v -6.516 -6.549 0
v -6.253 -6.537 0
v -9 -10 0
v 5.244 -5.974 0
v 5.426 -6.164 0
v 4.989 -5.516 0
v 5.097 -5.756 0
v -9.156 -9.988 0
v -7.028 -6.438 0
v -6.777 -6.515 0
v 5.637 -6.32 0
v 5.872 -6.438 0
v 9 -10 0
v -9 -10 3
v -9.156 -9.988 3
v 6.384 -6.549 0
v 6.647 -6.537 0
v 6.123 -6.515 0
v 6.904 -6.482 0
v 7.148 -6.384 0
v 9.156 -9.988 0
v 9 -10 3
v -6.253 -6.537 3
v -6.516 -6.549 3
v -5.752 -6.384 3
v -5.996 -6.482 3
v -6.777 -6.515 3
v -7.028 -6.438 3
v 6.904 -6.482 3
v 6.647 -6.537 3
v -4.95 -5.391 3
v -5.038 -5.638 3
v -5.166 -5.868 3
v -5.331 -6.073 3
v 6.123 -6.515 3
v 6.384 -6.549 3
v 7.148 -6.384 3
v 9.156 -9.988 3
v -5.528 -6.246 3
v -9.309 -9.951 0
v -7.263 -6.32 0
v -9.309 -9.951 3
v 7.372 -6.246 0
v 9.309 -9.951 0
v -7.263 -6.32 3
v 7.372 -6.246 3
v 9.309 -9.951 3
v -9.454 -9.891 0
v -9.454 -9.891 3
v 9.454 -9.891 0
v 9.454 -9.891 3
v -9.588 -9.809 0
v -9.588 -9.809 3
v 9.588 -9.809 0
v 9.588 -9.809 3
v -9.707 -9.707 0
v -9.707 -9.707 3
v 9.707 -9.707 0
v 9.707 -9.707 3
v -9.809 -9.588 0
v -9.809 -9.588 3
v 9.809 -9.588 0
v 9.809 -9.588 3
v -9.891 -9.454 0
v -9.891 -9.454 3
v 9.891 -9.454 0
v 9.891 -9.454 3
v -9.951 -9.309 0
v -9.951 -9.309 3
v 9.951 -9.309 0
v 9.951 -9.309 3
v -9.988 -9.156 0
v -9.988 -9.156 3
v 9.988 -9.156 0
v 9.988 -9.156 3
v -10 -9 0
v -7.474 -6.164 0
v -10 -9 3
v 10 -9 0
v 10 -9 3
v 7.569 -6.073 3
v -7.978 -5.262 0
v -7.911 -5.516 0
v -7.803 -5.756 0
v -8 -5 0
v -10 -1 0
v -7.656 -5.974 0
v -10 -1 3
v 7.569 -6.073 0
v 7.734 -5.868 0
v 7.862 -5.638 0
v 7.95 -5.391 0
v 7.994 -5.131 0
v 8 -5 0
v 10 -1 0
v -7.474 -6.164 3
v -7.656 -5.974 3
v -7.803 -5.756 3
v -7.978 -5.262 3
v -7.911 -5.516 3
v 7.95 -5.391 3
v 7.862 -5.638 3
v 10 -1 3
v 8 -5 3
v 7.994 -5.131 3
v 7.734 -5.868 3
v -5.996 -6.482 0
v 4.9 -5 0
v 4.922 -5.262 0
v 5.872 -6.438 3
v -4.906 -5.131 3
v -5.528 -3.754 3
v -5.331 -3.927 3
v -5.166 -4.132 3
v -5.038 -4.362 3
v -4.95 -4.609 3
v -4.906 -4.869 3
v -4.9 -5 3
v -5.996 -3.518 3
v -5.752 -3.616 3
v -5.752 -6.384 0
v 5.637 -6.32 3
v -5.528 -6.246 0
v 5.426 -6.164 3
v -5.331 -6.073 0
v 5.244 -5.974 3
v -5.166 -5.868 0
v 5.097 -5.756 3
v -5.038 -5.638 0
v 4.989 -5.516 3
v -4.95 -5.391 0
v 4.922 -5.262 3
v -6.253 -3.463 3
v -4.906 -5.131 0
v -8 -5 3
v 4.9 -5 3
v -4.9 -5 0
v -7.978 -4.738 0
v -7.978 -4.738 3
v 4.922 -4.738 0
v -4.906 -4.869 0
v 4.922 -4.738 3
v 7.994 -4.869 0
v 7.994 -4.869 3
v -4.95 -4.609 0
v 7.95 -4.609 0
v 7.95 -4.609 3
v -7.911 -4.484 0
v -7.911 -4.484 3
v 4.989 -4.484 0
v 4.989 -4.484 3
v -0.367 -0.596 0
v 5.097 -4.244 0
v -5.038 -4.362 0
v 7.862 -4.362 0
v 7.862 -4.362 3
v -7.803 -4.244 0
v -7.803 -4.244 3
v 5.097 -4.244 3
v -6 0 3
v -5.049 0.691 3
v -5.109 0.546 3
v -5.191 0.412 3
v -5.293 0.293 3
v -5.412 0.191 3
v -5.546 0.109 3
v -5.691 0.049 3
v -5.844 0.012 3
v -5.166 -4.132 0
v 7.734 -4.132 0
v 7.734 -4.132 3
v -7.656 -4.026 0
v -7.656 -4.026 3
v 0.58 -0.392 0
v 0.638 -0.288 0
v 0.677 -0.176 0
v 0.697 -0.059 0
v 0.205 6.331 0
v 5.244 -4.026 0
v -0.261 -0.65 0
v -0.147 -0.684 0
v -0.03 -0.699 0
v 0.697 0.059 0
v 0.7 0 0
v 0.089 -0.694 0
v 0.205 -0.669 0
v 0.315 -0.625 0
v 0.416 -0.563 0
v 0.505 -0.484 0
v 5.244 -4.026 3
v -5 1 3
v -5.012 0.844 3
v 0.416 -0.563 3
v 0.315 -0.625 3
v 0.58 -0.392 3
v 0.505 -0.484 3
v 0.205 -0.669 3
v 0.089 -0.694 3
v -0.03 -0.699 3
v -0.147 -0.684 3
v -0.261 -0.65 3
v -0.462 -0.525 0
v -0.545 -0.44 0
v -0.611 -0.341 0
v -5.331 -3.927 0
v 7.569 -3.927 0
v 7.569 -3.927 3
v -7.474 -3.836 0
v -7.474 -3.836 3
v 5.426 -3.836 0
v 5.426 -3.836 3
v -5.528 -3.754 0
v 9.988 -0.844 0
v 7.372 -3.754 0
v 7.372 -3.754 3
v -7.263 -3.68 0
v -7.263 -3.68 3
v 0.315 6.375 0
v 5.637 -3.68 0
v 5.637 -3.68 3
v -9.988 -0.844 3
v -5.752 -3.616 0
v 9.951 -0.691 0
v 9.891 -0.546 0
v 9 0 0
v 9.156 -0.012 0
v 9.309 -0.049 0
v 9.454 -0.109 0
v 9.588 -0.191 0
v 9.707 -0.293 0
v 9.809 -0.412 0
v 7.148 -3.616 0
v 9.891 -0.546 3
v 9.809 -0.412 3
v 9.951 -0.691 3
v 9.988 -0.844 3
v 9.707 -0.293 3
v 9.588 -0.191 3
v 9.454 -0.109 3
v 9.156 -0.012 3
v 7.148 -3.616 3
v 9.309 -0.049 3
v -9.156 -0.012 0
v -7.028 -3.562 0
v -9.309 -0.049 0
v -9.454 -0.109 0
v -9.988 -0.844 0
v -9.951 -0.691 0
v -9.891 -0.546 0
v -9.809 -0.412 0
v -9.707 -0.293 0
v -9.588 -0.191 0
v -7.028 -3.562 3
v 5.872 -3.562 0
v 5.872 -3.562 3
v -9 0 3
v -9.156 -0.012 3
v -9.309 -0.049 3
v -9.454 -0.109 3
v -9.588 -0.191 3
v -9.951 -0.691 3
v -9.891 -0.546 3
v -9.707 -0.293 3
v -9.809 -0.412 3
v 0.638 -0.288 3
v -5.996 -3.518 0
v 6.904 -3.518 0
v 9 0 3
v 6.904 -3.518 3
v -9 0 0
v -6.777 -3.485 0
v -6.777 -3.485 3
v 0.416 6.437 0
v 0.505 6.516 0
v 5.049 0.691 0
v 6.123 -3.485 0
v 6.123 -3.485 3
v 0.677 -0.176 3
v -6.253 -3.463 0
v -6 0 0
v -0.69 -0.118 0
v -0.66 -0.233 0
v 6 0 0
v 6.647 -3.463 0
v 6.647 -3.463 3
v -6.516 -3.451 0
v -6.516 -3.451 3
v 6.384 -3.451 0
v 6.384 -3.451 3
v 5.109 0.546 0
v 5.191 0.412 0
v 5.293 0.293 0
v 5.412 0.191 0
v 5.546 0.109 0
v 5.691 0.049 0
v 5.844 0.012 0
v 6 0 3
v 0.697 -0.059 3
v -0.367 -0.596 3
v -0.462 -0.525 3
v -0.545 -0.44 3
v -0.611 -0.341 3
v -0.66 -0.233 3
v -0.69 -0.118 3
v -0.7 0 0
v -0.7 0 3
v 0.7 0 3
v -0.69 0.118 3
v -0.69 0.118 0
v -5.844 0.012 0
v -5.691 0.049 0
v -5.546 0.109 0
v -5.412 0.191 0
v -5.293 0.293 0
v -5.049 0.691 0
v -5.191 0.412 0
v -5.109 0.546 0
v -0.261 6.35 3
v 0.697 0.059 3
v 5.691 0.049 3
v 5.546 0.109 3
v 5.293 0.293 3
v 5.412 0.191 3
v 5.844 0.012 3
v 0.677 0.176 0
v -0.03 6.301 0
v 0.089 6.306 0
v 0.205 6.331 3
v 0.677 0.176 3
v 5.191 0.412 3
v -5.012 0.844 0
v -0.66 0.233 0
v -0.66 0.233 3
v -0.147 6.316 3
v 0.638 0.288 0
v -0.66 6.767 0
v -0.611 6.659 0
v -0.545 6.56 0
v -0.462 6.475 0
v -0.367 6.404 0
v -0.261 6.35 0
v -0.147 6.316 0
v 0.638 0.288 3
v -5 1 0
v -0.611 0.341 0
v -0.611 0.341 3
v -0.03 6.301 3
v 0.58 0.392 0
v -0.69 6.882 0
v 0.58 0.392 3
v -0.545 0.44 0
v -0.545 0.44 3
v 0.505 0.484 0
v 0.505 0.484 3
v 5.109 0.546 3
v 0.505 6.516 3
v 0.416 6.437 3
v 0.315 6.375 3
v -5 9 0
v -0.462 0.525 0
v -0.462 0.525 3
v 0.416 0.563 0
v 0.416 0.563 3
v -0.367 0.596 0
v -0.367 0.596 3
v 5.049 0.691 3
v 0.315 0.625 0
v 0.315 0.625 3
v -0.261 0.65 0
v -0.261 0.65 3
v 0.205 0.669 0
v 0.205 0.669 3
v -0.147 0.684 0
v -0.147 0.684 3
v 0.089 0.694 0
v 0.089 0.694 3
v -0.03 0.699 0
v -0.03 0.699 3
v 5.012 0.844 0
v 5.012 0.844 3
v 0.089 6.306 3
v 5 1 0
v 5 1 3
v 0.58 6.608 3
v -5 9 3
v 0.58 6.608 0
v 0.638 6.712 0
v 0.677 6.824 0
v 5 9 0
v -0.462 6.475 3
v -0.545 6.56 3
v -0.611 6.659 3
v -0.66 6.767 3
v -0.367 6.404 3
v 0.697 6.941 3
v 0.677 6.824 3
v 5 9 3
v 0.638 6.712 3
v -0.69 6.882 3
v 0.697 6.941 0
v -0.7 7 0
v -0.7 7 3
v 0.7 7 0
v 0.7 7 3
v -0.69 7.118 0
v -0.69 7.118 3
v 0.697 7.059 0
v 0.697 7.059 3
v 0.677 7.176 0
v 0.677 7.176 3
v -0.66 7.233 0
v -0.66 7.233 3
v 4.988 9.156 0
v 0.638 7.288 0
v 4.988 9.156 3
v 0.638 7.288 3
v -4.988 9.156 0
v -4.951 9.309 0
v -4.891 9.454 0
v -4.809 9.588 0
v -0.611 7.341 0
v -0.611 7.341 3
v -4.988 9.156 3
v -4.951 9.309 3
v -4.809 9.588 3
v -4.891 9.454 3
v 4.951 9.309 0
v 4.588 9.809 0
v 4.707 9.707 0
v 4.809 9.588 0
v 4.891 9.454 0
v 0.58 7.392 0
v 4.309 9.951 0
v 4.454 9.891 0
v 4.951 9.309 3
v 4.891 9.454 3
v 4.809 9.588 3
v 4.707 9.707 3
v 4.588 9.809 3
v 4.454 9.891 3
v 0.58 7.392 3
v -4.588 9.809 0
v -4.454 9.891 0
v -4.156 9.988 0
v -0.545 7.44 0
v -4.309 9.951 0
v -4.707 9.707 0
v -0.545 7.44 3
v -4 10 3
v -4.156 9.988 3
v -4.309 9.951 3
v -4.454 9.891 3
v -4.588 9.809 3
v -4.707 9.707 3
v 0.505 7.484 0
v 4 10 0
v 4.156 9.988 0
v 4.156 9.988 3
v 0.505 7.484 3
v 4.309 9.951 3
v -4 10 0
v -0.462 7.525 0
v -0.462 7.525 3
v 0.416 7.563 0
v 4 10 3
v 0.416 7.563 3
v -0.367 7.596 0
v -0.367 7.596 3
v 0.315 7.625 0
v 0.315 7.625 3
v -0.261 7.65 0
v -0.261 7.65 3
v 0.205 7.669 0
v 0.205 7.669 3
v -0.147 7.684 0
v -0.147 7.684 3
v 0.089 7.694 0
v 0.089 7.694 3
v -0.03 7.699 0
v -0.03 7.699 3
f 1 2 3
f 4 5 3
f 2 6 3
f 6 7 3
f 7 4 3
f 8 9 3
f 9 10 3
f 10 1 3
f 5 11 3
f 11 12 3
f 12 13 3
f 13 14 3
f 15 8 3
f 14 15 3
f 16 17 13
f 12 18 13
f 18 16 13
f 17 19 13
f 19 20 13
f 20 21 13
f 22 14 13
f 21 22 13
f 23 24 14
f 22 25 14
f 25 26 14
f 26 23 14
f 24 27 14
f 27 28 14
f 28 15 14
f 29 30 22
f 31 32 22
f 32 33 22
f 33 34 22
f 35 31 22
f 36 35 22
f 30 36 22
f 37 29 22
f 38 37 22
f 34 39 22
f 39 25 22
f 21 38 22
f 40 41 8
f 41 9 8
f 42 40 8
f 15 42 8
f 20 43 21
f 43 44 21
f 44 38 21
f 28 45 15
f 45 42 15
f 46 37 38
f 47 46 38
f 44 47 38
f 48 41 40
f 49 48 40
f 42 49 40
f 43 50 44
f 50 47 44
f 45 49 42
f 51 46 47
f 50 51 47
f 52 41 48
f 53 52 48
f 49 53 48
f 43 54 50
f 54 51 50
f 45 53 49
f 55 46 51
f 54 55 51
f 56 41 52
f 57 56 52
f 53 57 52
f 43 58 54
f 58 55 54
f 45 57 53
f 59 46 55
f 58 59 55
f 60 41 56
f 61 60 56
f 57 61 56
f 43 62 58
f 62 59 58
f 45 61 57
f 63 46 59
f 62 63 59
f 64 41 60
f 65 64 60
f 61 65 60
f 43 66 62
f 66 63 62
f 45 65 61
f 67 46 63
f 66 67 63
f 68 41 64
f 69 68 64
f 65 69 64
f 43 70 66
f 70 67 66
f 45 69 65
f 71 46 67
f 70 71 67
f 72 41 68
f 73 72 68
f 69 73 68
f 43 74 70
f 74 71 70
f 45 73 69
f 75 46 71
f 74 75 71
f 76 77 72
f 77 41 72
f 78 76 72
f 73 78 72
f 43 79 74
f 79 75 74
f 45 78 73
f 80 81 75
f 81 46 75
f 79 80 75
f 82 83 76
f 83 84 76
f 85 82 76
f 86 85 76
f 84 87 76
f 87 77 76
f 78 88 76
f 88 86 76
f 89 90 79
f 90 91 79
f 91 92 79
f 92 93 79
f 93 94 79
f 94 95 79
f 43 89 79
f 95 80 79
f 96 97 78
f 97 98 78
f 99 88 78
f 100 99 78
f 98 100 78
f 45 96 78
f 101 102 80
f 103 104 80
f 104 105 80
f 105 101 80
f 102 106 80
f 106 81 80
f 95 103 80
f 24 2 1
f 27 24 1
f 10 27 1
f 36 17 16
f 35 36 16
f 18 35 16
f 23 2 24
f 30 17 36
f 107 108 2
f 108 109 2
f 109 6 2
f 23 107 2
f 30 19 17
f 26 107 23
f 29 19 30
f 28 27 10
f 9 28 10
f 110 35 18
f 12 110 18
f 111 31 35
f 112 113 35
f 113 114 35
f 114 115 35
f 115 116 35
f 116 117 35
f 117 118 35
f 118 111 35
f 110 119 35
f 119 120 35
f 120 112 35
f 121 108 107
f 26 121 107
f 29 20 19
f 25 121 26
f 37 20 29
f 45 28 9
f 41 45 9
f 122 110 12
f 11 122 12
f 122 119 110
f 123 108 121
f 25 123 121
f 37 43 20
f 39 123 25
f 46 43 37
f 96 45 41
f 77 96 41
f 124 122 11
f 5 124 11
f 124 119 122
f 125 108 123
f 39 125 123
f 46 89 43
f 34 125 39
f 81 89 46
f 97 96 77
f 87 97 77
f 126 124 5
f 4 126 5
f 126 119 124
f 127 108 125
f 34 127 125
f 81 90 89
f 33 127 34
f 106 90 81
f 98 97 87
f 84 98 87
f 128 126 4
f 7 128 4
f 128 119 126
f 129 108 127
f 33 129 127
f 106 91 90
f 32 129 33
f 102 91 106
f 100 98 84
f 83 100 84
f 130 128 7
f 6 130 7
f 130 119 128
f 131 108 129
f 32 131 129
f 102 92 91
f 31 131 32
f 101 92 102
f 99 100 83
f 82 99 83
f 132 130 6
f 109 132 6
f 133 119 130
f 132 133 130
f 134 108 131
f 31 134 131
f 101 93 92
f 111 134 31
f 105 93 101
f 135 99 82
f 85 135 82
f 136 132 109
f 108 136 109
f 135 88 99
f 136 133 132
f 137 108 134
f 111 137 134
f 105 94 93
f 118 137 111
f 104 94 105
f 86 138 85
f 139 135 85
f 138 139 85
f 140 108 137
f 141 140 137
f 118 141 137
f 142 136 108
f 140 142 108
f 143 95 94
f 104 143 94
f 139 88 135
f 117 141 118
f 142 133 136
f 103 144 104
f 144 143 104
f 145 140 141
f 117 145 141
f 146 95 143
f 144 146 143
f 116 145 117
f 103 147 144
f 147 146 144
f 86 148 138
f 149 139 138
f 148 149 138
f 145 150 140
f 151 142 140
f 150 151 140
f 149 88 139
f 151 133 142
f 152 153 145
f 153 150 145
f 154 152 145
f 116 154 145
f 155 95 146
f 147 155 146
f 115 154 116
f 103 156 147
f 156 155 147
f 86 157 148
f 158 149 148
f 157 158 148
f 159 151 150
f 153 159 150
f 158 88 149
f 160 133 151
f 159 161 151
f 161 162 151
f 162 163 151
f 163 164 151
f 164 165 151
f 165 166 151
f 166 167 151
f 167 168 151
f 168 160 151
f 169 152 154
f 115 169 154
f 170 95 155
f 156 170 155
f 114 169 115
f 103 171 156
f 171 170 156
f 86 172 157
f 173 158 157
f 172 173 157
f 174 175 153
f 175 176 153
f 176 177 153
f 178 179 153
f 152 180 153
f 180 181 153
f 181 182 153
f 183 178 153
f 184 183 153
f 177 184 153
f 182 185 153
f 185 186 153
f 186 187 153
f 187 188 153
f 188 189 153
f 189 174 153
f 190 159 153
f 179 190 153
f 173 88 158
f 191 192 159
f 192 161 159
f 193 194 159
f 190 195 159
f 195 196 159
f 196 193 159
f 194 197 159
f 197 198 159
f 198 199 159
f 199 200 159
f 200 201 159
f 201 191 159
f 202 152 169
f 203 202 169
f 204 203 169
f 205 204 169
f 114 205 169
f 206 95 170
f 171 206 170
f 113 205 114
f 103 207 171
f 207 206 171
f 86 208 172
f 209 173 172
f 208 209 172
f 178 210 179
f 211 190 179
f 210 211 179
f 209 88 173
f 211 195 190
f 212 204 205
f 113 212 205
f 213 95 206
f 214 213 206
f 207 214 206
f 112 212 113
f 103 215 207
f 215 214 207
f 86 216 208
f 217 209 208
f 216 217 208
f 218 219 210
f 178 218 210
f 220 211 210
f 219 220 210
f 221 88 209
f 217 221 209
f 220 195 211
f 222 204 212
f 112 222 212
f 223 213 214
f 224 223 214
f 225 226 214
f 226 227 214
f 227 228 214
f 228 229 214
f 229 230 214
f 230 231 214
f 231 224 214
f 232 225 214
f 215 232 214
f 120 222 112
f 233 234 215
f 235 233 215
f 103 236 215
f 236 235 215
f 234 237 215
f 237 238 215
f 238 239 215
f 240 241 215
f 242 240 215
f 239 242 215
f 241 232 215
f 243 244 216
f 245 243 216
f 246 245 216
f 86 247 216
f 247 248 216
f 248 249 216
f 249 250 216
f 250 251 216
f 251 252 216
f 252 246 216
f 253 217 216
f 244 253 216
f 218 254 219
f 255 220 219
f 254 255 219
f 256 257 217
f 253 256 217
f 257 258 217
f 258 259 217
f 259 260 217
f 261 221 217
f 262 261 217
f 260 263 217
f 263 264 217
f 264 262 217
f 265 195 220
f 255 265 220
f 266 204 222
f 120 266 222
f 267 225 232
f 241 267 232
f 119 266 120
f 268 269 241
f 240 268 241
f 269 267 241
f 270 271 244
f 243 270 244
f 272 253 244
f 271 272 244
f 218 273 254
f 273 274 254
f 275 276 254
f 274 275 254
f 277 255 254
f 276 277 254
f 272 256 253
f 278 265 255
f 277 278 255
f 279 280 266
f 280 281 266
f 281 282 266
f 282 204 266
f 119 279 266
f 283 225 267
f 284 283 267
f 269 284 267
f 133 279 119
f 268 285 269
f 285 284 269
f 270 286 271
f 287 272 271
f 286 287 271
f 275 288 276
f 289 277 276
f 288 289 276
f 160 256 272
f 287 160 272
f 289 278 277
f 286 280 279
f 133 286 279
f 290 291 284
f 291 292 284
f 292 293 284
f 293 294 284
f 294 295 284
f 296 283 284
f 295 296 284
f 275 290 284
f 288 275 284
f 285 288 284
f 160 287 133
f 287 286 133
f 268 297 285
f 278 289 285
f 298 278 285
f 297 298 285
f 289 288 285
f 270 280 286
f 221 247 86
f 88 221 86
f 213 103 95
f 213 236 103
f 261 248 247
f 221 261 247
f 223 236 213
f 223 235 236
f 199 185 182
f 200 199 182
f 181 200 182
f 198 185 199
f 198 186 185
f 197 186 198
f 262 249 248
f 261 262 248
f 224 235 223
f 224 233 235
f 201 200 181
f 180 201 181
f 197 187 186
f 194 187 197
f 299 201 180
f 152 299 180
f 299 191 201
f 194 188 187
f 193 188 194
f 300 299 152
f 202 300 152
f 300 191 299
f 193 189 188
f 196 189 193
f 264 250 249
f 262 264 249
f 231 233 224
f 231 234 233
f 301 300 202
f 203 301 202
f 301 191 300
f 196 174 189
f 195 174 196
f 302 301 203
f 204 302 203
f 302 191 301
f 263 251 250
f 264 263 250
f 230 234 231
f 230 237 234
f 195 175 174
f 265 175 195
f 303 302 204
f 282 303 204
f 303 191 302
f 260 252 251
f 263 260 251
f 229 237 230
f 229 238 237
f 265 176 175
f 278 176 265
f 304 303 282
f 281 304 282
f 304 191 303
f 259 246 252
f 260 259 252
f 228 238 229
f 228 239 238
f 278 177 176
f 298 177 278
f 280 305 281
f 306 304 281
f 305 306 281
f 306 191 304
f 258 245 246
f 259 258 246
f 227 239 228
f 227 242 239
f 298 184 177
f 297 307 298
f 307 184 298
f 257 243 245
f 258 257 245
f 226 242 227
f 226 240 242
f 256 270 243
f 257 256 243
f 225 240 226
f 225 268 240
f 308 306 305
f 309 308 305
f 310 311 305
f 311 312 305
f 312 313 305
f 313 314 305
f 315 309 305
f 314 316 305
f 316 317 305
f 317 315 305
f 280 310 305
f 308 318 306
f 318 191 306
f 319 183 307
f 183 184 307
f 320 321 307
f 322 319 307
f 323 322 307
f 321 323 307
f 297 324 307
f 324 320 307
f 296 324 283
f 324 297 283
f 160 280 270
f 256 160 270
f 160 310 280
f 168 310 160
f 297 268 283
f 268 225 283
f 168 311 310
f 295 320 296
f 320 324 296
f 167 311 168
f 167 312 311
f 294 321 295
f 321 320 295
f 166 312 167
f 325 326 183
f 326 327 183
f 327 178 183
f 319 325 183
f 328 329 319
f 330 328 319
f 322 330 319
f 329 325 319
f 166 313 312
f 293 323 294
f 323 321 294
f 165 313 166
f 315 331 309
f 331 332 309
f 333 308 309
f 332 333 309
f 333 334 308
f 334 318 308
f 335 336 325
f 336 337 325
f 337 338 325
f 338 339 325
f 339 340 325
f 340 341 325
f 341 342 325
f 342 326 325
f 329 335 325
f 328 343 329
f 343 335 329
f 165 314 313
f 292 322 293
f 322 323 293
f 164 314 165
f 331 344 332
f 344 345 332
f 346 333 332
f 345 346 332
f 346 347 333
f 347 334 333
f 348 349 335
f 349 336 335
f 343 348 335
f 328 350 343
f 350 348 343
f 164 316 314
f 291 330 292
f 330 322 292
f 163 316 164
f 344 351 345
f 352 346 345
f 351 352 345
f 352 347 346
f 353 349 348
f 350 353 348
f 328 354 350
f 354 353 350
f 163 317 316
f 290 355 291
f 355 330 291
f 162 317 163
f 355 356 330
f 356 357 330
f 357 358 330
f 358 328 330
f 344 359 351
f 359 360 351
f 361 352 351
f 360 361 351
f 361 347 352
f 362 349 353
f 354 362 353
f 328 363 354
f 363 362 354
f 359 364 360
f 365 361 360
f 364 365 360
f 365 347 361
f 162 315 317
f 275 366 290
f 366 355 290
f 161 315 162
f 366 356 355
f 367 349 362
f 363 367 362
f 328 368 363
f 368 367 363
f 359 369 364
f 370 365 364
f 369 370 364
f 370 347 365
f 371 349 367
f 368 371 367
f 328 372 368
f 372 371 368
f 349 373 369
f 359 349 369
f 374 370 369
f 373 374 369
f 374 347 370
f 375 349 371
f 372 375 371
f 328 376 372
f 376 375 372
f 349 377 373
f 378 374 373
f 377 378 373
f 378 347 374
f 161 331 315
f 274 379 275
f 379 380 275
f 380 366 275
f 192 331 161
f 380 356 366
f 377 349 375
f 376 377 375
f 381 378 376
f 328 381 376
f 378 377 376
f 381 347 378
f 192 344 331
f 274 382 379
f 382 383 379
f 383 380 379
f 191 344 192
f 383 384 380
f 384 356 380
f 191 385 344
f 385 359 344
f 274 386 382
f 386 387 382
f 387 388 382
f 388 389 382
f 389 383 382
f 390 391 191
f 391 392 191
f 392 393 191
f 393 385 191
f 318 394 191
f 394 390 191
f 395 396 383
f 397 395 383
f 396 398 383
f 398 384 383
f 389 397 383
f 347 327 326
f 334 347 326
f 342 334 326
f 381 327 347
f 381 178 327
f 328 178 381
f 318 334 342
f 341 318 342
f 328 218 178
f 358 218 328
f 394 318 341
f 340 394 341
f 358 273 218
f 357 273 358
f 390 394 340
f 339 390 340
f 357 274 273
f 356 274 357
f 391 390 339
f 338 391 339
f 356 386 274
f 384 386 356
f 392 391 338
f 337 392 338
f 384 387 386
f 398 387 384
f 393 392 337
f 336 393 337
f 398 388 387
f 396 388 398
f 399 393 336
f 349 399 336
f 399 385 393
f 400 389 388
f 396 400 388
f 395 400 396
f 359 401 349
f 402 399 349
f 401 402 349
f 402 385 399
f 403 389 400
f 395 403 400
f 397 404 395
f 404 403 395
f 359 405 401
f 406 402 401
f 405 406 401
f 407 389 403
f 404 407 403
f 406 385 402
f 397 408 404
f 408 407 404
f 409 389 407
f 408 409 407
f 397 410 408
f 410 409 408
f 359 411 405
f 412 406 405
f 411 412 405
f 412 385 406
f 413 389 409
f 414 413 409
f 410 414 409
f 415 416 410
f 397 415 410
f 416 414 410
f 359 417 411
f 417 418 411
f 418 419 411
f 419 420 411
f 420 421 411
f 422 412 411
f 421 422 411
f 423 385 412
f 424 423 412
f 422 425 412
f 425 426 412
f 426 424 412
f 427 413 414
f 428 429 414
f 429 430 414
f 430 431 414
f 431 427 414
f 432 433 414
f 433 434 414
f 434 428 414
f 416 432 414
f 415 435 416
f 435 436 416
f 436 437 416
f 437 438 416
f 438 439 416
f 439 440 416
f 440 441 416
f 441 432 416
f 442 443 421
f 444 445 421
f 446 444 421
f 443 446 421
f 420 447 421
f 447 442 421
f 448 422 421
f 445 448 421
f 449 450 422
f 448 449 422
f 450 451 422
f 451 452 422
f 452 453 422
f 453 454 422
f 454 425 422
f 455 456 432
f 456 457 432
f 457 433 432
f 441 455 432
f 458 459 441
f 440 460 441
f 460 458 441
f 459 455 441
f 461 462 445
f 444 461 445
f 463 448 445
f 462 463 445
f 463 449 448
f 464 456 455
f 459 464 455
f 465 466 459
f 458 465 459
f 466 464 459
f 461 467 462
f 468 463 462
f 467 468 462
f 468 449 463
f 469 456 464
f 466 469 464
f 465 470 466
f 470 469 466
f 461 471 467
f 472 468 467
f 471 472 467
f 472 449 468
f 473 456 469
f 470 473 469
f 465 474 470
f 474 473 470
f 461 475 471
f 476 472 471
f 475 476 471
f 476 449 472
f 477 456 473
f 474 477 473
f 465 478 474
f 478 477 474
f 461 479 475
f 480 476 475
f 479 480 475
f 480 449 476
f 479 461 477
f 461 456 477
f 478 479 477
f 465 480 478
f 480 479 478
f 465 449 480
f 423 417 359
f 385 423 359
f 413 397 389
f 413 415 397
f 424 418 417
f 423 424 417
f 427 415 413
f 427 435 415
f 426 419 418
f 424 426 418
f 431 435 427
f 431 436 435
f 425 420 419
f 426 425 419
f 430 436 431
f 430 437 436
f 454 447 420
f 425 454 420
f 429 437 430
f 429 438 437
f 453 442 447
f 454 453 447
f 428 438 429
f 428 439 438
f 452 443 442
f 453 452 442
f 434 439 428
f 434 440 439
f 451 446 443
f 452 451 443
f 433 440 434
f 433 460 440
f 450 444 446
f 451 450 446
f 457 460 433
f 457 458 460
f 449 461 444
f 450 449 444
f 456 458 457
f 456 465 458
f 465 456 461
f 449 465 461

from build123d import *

# Parameters (mm, degrees)
SKETCH_1_R      = 1.55
SKETCH_1_R_2    = 0.7
EXTRUDE_1_DEPTH = 3
FILLET_1_R      = 1


with BuildPart() as part:
    # 草图1 → 凸台-拉伸1 (new body)
    with BuildSketch(Plane.XY):
        Polygon((-5, 10), (5, 10), (5, 0), (10, 0), (10, -10), (5, -10), (-5, -10), (-10, -10), (-10, 0), (-5, 0), align=None)
        with Locations((-6.45, -5)):
            Circle(SKETCH_1_R, mode=Mode.SUBTRACT)
        with Locations((6.45, -5)):
            Circle(SKETCH_1_R, mode=Mode.SUBTRACT)
        Circle(SKETCH_1_R_2, mode=Mode.SUBTRACT)
        with Locations((0, 7)):
            Circle(SKETCH_1_R_2, mode=Mode.SUBTRACT)
    extrude(amount=EXTRUDE_1_DEPTH)

    # 圆角1
    fillet_1_edges = [part.edges().sort_by_distance(p)[0] for p in [
        (-10, -10, 1.5),
        (-10, 0, 1.5),
        (-5, 0, 1.5),
        (-5, 10, 1.5),
        (5, 10, 1.5),
        (5, 0, 1.5),
        (10, 0, 1.5),
        (10, -10, 1.5),
    ]]
    fillet(fillet_1_edges, radius=FILLET_1_R)


solid = part.part
